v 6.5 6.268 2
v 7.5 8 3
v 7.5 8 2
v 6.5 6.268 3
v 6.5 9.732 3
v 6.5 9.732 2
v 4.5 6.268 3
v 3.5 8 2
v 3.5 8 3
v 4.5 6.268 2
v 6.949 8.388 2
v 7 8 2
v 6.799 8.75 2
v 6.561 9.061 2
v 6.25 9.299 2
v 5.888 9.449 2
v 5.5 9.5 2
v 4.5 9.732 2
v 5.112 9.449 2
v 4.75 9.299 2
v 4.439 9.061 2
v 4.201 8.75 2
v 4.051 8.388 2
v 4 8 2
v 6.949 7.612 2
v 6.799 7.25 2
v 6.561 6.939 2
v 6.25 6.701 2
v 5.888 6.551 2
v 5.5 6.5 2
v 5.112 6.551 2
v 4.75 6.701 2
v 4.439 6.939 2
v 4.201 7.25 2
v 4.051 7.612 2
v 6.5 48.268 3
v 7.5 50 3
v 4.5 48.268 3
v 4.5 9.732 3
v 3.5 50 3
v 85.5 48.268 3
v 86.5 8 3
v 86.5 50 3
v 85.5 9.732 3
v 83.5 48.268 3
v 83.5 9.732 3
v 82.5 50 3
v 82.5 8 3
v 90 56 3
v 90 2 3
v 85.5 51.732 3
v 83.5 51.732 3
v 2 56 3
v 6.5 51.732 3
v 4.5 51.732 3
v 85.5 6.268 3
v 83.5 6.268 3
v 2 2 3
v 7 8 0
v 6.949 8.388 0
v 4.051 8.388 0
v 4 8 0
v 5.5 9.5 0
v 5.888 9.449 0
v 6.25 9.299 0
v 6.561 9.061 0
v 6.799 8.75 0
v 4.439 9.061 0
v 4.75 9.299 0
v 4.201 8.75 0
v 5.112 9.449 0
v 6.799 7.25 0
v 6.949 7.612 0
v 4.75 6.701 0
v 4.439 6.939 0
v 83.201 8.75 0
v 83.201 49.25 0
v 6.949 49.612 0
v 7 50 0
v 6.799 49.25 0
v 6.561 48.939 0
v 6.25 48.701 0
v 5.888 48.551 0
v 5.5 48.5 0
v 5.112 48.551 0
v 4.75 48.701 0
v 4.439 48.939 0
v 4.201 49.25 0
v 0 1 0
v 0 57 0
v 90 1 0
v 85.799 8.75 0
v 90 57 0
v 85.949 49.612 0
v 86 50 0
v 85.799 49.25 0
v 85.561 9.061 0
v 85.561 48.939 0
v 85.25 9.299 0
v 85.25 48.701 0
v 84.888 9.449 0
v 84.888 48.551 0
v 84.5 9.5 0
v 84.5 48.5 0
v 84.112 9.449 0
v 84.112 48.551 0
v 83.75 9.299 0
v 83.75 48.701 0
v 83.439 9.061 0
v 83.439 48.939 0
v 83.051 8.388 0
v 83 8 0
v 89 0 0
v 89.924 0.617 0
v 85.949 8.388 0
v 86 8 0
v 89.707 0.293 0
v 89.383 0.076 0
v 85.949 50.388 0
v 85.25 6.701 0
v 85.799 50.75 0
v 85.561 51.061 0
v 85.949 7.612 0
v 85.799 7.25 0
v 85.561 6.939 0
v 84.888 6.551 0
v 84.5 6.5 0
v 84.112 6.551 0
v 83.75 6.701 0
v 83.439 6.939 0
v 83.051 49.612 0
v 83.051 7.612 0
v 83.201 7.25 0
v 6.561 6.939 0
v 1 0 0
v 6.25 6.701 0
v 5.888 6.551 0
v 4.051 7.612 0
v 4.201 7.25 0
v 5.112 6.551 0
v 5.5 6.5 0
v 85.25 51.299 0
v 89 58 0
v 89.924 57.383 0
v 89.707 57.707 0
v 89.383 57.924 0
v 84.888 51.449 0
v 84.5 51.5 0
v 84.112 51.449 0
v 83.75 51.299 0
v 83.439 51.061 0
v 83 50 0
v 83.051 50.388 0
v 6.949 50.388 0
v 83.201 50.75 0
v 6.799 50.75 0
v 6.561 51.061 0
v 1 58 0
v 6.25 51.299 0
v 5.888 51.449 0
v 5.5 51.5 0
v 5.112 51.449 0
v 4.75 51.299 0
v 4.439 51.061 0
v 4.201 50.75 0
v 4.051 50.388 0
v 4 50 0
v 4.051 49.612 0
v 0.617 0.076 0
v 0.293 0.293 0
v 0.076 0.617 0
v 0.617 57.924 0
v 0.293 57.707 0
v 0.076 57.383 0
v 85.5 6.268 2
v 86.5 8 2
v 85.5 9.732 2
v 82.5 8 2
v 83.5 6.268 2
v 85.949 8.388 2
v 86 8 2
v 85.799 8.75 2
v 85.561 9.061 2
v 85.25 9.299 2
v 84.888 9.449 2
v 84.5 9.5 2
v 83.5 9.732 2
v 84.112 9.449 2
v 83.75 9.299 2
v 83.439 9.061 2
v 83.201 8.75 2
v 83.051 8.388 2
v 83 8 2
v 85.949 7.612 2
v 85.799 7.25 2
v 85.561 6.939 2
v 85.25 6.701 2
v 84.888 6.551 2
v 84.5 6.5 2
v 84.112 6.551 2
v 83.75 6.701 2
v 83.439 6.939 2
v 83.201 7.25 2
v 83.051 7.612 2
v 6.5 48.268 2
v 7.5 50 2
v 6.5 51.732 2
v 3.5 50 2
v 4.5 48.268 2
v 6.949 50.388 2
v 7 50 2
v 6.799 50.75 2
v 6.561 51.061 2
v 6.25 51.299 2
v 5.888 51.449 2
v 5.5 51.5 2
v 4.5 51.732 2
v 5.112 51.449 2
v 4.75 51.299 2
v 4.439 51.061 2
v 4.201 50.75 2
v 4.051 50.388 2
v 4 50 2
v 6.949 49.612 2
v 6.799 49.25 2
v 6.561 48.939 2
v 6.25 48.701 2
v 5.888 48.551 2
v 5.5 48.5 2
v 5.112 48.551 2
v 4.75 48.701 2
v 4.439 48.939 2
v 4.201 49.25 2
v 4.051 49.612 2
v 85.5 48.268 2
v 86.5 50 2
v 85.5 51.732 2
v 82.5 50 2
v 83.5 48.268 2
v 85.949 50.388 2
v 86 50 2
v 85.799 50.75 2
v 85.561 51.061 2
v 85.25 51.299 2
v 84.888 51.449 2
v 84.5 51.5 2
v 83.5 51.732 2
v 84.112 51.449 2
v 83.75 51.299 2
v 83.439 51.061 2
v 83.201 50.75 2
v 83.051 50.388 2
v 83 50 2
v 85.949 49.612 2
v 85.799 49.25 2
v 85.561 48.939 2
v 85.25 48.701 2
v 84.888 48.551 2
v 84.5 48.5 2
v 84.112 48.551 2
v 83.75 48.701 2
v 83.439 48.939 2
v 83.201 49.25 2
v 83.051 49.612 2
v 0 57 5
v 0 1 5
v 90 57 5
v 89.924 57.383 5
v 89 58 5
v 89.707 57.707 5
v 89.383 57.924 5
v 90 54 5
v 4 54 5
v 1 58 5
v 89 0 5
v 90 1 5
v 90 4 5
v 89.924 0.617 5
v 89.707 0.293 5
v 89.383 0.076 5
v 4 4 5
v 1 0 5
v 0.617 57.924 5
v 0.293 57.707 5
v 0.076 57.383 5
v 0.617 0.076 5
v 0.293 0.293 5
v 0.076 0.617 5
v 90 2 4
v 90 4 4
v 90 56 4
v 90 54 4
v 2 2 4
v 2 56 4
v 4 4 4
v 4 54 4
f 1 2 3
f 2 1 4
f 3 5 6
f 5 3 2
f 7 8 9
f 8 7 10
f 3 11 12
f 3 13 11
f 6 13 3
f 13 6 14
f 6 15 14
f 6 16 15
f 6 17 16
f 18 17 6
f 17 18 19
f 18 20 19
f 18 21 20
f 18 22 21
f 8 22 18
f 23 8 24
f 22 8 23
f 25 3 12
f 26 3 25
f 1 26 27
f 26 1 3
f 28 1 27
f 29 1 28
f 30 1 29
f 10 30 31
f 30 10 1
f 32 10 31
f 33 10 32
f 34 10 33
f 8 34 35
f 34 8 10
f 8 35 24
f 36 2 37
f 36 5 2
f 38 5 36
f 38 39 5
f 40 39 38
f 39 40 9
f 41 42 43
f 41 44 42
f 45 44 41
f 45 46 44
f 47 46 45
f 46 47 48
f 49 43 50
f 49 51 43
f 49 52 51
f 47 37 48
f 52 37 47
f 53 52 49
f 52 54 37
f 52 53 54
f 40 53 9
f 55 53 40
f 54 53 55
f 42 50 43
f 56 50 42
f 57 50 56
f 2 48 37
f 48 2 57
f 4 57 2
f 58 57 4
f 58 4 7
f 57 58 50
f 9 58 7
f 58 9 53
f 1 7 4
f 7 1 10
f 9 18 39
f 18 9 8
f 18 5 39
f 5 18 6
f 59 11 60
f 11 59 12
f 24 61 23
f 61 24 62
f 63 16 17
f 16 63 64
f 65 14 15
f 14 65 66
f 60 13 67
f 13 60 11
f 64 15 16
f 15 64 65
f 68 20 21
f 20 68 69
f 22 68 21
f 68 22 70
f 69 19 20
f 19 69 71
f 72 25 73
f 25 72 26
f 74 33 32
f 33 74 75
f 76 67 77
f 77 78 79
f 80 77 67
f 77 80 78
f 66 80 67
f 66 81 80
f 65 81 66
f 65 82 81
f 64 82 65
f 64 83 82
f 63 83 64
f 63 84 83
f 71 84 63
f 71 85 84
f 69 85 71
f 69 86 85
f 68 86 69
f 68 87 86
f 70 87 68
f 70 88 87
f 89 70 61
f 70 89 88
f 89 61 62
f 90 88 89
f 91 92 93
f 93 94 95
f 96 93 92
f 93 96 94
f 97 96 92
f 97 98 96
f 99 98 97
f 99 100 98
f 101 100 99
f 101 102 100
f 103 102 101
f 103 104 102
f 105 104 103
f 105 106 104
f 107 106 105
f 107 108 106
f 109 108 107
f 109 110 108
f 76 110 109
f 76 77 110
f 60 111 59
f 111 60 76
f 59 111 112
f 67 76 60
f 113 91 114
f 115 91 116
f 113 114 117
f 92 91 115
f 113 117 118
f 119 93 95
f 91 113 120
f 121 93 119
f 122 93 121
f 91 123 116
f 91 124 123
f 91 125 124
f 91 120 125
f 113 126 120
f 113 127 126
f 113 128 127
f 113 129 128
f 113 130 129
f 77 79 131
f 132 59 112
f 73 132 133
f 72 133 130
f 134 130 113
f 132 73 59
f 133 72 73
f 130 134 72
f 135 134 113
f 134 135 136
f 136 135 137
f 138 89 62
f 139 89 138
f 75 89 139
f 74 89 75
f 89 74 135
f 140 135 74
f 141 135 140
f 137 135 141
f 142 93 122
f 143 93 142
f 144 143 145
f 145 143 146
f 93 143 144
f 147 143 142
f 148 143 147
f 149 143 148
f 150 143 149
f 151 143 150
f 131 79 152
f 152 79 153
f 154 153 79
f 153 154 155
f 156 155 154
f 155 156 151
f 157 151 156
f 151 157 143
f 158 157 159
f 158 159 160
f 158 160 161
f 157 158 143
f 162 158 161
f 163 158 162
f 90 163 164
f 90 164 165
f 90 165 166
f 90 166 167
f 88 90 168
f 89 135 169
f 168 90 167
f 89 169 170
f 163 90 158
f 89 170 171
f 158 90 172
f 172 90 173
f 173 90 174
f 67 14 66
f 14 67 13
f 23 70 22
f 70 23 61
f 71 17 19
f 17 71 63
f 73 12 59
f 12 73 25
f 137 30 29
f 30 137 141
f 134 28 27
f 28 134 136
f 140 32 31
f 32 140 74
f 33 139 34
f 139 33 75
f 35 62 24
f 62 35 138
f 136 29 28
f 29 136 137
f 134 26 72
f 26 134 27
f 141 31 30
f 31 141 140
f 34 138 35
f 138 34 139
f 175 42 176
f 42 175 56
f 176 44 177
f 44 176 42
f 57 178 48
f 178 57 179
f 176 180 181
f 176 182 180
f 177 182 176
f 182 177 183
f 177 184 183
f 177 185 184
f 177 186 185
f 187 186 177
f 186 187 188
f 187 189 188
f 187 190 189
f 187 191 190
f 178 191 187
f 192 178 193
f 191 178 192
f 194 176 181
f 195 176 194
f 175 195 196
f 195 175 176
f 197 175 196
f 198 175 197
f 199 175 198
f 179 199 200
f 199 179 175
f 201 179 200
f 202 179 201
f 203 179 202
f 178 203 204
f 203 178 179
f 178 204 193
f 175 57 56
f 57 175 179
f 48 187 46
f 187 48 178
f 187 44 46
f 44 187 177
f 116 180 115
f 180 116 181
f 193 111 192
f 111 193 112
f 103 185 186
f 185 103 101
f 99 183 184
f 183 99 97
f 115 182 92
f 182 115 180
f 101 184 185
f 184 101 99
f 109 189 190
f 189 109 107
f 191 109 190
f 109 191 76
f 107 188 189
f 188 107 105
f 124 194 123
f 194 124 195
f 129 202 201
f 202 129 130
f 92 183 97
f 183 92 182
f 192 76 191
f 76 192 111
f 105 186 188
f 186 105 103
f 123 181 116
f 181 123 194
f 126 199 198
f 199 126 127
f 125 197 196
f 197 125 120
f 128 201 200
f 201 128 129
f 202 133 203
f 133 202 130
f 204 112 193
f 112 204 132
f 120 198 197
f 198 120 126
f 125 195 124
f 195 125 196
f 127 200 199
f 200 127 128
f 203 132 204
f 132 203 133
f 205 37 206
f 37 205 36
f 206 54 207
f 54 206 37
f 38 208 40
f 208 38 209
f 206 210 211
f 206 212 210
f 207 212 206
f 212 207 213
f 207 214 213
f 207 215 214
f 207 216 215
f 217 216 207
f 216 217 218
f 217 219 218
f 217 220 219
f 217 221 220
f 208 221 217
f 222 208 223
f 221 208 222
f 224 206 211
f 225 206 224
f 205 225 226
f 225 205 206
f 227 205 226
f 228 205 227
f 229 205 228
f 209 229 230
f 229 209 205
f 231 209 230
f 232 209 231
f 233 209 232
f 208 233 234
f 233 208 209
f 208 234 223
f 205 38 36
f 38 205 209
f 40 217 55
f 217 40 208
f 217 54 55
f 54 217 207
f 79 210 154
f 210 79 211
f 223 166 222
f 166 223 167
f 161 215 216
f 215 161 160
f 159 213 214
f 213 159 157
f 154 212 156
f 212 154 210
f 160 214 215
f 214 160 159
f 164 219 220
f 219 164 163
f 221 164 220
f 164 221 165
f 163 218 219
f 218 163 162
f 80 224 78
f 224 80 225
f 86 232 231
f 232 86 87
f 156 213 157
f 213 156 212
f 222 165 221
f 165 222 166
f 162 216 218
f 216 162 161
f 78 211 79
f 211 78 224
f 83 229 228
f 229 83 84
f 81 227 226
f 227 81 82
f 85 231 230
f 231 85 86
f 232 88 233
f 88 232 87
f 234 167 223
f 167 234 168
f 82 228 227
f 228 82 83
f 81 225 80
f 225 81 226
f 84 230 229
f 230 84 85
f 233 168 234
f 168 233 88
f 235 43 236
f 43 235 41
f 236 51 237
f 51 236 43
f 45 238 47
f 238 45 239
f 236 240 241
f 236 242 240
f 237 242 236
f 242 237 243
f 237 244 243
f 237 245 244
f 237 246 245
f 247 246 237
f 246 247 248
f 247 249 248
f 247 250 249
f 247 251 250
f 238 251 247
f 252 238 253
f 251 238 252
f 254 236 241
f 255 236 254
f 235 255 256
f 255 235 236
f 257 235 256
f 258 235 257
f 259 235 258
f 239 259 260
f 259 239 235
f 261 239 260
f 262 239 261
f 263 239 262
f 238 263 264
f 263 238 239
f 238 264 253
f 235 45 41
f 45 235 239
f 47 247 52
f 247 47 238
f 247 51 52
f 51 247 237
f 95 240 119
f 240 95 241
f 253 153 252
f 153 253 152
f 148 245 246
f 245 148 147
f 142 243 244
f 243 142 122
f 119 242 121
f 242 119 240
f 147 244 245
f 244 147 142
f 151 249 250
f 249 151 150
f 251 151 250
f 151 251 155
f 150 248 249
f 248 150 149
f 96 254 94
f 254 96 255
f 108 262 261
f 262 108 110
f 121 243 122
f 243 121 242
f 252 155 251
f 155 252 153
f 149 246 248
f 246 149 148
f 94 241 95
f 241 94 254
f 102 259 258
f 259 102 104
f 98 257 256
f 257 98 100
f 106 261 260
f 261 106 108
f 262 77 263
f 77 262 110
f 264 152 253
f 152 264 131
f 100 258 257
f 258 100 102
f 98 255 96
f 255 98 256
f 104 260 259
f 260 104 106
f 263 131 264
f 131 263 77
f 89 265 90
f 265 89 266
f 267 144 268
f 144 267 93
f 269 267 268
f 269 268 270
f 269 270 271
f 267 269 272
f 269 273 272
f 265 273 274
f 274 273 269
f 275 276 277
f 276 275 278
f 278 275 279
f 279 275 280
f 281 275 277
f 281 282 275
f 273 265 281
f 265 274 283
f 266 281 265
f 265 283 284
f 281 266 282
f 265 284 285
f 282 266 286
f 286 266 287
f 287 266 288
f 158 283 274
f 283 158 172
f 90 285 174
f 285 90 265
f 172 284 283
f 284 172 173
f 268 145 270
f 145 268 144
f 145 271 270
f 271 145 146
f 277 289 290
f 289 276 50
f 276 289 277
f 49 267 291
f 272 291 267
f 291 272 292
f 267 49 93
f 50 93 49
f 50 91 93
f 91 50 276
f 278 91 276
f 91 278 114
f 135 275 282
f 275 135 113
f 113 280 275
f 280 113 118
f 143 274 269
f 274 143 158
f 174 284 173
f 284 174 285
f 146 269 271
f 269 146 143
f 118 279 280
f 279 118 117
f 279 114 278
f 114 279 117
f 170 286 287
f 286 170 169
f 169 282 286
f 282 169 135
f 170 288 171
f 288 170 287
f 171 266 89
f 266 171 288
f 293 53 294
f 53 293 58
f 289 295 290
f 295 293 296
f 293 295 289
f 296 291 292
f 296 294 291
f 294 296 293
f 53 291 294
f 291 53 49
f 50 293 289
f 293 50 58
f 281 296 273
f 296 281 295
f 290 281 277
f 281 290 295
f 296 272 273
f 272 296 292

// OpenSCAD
// Render Control
$fa = 1;
$fs = 0.4;

// Dimensions: Badger
widthBadger = 86;
heightBadger = 49;

// Dimensions: Badger Plate
offsetHole = 2;
radiusHole = 1.5;

// Dimensions: ID Card
widthCard = 86;
heightCard = 54;
depthCard = 1;

// Dimensions: Fixings
lengthScrew = 3;
lengthNut = 1;
radiusNut = 2;

// Dimensions: General
radiusPlate = 1;
heightWall = 2;
bufferPlate = 2;
depthWall = 2;
overhangWall = 2;

// Module: Hull
module hull_cyl() {
    cylinder(r=radiusPlate, h=lengthScrew + heightWall);
}

module hull_nut() {
    linear_extrude(height=lengthNut) {
        circle(r=radiusNut, $fn=6);
    }
    translate([0, 0, lengthNut - lengthScrew]) {
        cylinder(r=radiusHole, h=lengthScrew - lengthNut);
    }
}

// Model
render() {
    difference() {
        hull(){
            translate([radiusPlate, radiusPlate, 0]) {
                hull_cyl();
            }

            translate([widthCard + (2 * bufferPlate) - radiusPlate, radiusPlate, 0]) {
                hull_cyl();
            }

            translate([radiusPlate, heightCard + (2 * bufferPlate) - radiusPlate, 0]) {
                hull_cyl();
            }

            translate([widthCard + (2 * bufferPlate) - radiusPlate, heightCard + (2 * bufferPlate) - radiusPlate, 0]) {
                hull_cyl();
            }
        }

        translate([bufferPlate + offsetHole + radiusHole, bufferPlate + ((heightCard - heightBadger) / 2) + offsetHole + radiusHole, lengthScrew - lengthNut]) {
            hull_nut();
        }

        translate([bufferPlate + widthBadger - (offsetHole + radiusHole), bufferPlate + ((heightCard - heightBadger) / 2) + offsetHole + radiusHole, lengthScrew - lengthNut]) {
            hull_nut();
        }

        translate([bufferPlate + offsetHole + radiusHole, bufferPlate + heightBadger + ((heightCard - heightBadger) / 2) - (offsetHole + radiusHole), lengthScrew - lengthNut]) {
            hull_nut();
        }

        translate([bufferPlate + widthBadger - (offsetHole + radiusHole), bufferPlate + heightBadger + ((heightCard - heightBadger) / 2) - (offsetHole + radiusHole), lengthScrew - lengthNut]) {
            hull_nut();
        }

        translate([bufferPlate, bufferPlate, lengthScrew]) {
            cube([widthCard + bufferPlate, heightCard, depthCard]);
        }

        translate([bufferPlate + overhangWall, bufferPlate + overhangWall, lengthScrew + depthCard]) {
            cube([widthCard - overhangWall, heightCard - (2 * overhangWall), heightWall - depthCard]);
        }

        translate([bufferPlate + widthCard, bufferPlate + overhangWall, lengthScrew + depthCard]) {
            cube([bufferPlate, heightCard - (bufferPlate + overhangWall), heightWall - depthCard]);
        }
    }
}
